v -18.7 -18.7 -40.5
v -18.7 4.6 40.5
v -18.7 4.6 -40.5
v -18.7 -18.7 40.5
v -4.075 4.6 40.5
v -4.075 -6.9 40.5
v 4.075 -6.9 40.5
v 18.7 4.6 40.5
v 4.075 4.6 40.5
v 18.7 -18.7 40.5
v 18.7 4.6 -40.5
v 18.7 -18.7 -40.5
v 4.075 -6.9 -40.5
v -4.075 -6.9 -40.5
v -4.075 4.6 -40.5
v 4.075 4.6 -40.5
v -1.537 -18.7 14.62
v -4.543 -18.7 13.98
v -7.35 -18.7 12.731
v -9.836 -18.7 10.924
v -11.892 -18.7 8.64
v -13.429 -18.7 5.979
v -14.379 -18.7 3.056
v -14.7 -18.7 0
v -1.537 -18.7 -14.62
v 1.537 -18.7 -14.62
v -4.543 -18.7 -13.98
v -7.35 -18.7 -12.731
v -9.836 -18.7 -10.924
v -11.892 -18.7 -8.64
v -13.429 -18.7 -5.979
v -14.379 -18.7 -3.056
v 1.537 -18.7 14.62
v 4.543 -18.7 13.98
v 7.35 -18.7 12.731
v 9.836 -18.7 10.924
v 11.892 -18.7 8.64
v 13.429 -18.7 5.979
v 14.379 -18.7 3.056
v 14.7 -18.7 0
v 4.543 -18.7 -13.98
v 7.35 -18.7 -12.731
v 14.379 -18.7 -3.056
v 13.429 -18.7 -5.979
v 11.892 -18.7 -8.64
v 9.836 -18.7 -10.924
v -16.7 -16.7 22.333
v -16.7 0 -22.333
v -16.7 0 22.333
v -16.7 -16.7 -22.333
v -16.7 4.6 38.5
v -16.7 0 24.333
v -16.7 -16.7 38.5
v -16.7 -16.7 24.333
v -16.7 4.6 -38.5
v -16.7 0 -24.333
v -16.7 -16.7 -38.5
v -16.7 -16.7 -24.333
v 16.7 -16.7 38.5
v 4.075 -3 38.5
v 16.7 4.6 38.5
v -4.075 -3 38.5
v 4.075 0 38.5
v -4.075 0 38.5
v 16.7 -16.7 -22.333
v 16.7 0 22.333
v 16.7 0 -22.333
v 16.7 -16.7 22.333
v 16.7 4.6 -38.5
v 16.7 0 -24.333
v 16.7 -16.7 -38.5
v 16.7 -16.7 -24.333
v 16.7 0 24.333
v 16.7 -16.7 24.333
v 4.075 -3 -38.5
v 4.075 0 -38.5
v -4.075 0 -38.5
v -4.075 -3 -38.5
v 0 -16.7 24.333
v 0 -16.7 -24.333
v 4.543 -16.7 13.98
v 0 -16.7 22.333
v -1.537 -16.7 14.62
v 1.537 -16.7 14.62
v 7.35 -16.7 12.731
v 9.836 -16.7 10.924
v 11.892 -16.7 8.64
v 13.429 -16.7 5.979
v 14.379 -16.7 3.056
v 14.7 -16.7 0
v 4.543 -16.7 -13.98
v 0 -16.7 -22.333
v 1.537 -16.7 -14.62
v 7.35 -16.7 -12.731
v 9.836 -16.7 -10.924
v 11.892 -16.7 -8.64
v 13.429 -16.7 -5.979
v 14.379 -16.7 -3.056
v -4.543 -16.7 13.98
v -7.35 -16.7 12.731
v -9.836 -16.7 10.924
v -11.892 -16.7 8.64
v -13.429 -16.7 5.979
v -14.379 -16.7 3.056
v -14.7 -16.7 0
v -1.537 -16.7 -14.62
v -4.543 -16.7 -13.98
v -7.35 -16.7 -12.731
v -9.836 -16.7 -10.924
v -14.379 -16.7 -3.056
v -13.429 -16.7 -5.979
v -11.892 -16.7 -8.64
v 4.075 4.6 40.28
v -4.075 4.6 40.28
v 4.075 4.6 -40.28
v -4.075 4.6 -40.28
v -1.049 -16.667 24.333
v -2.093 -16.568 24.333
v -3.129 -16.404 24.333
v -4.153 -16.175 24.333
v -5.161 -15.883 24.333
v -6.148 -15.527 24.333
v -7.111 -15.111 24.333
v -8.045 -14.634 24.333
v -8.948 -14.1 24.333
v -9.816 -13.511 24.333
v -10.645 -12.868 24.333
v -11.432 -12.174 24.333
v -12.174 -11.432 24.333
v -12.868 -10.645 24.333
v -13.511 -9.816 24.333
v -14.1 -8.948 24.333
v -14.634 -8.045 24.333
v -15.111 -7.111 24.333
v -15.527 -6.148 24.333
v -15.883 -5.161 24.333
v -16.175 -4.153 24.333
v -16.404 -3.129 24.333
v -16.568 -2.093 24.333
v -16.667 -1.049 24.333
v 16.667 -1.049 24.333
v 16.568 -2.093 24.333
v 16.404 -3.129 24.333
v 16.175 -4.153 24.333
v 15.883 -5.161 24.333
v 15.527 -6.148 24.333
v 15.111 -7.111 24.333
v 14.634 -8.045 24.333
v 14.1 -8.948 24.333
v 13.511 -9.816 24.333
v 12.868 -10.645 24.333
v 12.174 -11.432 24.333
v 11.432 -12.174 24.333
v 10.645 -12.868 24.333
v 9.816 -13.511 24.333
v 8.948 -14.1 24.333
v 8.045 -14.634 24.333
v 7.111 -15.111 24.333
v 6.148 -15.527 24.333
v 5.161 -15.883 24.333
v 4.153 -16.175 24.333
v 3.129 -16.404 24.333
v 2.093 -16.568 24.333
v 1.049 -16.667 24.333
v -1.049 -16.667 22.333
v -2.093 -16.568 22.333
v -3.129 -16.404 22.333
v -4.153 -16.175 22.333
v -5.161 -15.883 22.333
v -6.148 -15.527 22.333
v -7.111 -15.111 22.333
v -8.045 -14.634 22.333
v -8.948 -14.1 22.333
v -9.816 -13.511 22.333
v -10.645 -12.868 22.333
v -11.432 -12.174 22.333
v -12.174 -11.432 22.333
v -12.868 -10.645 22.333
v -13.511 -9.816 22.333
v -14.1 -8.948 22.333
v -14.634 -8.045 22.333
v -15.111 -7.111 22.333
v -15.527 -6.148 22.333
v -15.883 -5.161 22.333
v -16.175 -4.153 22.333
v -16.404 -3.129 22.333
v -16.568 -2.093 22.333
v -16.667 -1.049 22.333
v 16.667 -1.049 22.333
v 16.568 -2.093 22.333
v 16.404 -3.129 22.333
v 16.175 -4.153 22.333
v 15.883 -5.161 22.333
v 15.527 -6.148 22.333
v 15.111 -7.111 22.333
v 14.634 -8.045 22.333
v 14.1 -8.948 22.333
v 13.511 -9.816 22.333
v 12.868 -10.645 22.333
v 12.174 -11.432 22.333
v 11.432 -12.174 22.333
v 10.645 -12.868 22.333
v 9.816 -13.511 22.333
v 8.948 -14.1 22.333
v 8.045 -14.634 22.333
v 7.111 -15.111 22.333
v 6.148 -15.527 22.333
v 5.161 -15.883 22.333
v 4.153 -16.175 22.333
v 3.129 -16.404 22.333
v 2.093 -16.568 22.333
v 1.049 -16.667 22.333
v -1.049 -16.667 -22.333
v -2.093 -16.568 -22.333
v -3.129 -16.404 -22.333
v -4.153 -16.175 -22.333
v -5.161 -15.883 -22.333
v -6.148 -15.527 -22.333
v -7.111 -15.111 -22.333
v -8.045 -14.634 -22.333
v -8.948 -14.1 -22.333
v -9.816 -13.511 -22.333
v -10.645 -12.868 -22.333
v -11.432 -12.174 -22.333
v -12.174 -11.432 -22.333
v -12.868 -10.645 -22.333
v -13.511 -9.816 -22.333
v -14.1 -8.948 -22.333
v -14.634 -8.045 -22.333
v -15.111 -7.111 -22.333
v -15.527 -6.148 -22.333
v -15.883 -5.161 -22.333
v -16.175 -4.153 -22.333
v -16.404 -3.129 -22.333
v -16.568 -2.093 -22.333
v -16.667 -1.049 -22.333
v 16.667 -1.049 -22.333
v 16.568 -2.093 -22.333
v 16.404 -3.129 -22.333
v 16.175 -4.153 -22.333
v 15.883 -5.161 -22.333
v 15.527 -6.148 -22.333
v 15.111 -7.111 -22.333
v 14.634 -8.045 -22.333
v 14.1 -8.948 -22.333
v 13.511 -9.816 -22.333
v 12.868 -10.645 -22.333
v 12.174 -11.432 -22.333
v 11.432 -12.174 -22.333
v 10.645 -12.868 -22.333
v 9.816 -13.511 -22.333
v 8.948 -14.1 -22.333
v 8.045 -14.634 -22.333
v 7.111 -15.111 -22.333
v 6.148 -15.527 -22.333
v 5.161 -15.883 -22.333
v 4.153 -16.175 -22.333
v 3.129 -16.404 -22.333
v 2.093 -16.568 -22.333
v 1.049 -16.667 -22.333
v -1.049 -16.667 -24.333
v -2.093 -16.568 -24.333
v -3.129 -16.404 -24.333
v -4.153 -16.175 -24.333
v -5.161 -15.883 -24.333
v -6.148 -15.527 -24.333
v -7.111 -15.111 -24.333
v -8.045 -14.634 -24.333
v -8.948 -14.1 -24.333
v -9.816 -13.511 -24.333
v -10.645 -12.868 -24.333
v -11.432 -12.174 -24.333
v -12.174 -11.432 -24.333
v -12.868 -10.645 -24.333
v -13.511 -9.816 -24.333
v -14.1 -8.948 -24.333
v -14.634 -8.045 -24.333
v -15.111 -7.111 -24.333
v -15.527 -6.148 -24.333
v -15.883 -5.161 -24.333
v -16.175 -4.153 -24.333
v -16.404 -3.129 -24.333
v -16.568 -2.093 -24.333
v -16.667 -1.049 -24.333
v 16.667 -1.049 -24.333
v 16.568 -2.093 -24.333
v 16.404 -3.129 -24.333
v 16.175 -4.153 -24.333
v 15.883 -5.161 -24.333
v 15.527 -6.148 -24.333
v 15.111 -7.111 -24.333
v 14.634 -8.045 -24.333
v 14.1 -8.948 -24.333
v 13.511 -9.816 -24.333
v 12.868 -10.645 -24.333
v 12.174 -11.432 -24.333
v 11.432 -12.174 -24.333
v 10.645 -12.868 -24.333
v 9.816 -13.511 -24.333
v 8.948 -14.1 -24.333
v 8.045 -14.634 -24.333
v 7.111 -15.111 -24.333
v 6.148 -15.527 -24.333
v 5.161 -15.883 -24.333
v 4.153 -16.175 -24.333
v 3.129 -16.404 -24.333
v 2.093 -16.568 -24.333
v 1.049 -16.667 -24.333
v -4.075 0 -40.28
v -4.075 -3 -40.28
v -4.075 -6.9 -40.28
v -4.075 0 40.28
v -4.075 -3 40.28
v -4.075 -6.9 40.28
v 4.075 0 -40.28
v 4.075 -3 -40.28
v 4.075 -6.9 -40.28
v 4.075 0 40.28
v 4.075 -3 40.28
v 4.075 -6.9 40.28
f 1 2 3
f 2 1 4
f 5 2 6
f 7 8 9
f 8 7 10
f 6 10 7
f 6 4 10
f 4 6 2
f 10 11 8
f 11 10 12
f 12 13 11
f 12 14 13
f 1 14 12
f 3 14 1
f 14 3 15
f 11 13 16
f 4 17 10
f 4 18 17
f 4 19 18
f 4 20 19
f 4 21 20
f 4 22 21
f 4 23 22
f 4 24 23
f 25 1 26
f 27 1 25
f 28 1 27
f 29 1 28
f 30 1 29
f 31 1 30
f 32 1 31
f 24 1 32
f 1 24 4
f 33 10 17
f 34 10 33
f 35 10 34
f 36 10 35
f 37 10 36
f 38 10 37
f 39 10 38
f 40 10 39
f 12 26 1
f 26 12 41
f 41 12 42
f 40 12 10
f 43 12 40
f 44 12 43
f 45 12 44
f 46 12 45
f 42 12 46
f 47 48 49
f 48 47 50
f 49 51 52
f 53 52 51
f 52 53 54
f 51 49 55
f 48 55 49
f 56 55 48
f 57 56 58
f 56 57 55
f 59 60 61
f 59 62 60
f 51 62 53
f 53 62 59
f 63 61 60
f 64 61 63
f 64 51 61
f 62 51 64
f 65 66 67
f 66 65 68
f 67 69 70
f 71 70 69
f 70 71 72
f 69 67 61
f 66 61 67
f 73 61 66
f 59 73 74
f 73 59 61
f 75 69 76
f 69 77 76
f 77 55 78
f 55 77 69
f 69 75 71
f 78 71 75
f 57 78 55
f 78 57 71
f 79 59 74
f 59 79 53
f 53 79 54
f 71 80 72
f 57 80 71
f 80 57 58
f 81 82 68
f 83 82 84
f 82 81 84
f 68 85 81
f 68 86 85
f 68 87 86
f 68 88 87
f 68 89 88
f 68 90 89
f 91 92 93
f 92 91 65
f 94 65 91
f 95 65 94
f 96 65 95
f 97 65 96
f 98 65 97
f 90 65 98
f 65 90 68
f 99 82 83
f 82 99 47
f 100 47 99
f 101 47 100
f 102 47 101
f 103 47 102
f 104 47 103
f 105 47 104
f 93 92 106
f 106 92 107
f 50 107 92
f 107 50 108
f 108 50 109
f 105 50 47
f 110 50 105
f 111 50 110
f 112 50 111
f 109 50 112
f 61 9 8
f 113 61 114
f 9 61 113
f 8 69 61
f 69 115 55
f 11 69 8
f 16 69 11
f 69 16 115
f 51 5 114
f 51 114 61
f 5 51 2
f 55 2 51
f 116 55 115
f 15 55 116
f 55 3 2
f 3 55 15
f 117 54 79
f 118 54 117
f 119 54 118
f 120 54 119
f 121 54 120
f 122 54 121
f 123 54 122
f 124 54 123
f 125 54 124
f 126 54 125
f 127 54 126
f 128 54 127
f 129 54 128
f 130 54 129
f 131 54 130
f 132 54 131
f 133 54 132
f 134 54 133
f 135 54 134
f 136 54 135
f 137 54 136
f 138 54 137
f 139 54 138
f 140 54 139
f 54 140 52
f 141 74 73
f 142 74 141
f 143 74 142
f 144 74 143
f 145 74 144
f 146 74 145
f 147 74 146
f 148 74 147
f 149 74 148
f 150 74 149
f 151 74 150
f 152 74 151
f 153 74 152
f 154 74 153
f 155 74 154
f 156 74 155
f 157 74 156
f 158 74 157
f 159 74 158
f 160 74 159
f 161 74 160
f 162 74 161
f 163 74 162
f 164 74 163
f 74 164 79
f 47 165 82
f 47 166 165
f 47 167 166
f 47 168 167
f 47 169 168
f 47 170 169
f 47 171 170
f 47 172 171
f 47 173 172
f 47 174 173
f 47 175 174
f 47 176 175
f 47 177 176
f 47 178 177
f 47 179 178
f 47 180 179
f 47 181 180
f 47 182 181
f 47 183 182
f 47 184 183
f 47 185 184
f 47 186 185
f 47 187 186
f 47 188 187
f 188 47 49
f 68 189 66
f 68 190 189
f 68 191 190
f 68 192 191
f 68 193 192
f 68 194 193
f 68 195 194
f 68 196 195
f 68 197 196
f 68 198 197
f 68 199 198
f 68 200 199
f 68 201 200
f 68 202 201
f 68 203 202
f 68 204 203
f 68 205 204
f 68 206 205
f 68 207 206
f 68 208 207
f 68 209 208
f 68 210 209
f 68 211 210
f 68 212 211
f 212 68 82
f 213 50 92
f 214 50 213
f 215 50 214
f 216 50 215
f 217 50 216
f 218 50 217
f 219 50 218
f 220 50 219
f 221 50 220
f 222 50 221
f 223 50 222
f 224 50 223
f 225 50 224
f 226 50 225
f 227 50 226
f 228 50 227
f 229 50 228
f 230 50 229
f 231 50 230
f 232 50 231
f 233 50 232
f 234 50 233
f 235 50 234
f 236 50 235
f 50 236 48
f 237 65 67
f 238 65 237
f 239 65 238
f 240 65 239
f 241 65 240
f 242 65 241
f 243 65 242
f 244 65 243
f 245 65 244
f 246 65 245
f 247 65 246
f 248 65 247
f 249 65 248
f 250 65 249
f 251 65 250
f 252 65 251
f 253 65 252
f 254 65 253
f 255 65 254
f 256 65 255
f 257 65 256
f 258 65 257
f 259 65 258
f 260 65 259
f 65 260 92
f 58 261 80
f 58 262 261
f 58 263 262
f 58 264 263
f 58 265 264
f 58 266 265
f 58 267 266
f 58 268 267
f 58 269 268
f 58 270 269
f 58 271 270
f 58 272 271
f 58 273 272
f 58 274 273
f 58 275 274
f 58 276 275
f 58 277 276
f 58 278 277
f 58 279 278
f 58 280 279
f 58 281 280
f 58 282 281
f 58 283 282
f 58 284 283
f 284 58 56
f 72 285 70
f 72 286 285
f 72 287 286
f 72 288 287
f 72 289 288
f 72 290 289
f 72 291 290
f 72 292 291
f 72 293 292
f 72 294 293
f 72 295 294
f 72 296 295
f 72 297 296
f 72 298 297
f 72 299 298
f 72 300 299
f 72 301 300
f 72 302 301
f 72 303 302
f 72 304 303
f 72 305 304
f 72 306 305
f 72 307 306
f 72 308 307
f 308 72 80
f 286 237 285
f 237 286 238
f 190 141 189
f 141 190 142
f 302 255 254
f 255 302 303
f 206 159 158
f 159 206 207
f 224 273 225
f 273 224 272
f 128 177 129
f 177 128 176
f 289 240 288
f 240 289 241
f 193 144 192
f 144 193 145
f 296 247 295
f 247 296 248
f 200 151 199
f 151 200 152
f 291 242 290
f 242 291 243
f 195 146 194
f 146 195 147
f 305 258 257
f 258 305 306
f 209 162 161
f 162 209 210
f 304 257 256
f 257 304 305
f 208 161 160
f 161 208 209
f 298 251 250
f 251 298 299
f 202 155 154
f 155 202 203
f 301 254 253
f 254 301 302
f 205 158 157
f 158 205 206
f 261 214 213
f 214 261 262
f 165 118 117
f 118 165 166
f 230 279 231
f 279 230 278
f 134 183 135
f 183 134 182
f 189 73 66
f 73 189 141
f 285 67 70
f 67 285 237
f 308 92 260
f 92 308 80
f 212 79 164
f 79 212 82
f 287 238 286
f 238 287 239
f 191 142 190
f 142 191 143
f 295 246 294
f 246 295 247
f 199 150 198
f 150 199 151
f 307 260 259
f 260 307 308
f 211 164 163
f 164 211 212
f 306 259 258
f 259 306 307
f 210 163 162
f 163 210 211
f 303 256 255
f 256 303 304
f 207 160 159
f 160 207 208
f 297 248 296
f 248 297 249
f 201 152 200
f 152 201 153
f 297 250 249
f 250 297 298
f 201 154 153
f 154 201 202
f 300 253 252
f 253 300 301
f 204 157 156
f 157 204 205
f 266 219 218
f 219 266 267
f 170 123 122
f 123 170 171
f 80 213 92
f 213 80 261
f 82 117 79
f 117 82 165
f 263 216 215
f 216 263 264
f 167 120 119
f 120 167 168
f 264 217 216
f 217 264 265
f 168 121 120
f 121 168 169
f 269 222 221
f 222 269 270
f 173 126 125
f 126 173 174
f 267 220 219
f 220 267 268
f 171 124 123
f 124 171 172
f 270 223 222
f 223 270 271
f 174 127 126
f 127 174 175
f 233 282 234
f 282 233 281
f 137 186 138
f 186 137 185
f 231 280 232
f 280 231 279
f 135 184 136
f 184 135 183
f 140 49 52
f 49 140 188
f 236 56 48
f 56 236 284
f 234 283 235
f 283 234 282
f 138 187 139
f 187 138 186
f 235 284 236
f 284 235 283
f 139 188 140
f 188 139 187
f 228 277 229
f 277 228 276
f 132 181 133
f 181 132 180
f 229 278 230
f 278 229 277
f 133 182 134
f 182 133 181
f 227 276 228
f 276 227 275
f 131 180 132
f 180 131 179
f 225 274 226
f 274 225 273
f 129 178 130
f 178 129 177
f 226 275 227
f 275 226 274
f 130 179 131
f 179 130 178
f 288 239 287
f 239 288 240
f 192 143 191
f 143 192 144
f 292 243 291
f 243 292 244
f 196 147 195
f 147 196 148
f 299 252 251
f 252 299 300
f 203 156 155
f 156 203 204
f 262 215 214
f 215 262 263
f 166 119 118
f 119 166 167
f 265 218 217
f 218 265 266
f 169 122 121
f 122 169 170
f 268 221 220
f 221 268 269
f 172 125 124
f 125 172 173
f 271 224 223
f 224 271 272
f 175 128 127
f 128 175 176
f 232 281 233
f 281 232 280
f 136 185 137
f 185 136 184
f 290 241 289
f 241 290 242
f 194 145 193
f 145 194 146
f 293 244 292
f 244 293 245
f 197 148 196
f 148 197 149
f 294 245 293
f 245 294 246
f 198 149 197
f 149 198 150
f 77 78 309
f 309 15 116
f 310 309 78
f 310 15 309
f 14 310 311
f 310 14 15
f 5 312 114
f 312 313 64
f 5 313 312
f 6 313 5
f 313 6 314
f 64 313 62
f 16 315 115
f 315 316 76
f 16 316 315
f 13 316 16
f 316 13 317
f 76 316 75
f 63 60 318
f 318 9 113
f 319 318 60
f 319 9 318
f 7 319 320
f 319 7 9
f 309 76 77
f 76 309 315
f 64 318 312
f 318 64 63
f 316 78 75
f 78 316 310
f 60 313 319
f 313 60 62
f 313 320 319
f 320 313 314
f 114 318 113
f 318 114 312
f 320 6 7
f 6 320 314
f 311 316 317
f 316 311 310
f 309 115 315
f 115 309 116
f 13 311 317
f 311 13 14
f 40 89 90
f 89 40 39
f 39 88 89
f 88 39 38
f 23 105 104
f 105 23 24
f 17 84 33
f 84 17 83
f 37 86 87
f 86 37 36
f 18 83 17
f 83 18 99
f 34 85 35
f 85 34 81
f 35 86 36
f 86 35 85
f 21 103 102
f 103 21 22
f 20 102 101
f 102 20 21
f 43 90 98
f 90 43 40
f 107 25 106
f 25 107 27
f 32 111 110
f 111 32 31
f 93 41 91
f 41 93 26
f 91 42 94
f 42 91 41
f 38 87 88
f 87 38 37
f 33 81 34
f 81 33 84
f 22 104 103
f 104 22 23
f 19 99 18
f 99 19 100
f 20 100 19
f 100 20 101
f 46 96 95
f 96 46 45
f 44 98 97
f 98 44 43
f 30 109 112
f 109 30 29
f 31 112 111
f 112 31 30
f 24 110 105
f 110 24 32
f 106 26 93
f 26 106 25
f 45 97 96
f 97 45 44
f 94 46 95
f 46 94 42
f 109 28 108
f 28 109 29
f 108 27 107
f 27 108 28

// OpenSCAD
// printer-specific fudge setting to allow enough clearance
diameter_fudge = 0.4;

// cell dimensions, measured to 32650 cell in-hand
cell_diameter = 33 + diameter_fudge;
cell_height = 70;

// configured for Keystone "209" clip:
clip_gap = 3.5; // gap between wall of holder and battery where spring clip sits, compressed size
clip_wall = 1.78; // width of printed wall onto which clip clips
clip_top_wall_to_hook = 4.6; // minimum distance between edge of clip wall and hook on clip
clip_width = 8.15;
clip_height = 11.5;

// holder dimensions
wall_thickness = 2.0;

// calculated dimensions
box_width = cell_diameter + wall_thickness*2;
box_height = cell_height + clip_gap*2 + wall_thickness*2;
box_depth = cell_diameter + wall_thickness*2;
hole_width = cell_diameter;
hole_height = cell_height + clip_gap*2;
hole_depth = cell_diameter;

// transparent battery image
module battery(cell_height, cell_diameter) {
    cylinder(h=cell_height, d=cell_diameter, center=true, $fn=100);
}
//%battery(cell_height, cell_diameter);


difference(){
    // positive shapes
    union(){
        // main box shape
        difference(){
            cube([box_width, box_depth, box_height], center=true); // box outside
            cube([hole_width, hole_depth, hole_height], center=true); // box cutout
            translate([0,box_depth/2+clip_top_wall_to_hook,0]){cube([box_width+1, box_depth, box_height+1], center=true);} // box top cut off
        }
        // mid supports
        translate([0,-box_depth/4,cell_height/3]){cube([box_width, box_depth/2, wall_thickness],center=true);}
        translate([0,-box_depth/4,-cell_height/3]){cube([box_width, box_depth/2, wall_thickness],center=true);}
    }
    // negative shapes
    union(){
        battery(cell_height, cell_diameter);
        // clip hook hole
        translate([0,-3/2,0]){cube([clip_width, 3, box_height+1], center=true);}
        // clip indentations
        notch_depth = wall_thickness-clip_wall;
        translate([0,-(clip_height/2)+clip_top_wall_to_hook,box_height/2-notch_depth/2]){cube([clip_width,clip_height,notch_depth],center=true);}
        translate([0,-(clip_height/2)+clip_top_wall_to_hook,-box_height/2+notch_depth/2]){cube([clip_width,clip_height,notch_depth],center=true);}
        // speed holes
        rotate([90,0,0]){cylinder(h=box_width+1, d=hole_width-4,center=true);}
    }
}
